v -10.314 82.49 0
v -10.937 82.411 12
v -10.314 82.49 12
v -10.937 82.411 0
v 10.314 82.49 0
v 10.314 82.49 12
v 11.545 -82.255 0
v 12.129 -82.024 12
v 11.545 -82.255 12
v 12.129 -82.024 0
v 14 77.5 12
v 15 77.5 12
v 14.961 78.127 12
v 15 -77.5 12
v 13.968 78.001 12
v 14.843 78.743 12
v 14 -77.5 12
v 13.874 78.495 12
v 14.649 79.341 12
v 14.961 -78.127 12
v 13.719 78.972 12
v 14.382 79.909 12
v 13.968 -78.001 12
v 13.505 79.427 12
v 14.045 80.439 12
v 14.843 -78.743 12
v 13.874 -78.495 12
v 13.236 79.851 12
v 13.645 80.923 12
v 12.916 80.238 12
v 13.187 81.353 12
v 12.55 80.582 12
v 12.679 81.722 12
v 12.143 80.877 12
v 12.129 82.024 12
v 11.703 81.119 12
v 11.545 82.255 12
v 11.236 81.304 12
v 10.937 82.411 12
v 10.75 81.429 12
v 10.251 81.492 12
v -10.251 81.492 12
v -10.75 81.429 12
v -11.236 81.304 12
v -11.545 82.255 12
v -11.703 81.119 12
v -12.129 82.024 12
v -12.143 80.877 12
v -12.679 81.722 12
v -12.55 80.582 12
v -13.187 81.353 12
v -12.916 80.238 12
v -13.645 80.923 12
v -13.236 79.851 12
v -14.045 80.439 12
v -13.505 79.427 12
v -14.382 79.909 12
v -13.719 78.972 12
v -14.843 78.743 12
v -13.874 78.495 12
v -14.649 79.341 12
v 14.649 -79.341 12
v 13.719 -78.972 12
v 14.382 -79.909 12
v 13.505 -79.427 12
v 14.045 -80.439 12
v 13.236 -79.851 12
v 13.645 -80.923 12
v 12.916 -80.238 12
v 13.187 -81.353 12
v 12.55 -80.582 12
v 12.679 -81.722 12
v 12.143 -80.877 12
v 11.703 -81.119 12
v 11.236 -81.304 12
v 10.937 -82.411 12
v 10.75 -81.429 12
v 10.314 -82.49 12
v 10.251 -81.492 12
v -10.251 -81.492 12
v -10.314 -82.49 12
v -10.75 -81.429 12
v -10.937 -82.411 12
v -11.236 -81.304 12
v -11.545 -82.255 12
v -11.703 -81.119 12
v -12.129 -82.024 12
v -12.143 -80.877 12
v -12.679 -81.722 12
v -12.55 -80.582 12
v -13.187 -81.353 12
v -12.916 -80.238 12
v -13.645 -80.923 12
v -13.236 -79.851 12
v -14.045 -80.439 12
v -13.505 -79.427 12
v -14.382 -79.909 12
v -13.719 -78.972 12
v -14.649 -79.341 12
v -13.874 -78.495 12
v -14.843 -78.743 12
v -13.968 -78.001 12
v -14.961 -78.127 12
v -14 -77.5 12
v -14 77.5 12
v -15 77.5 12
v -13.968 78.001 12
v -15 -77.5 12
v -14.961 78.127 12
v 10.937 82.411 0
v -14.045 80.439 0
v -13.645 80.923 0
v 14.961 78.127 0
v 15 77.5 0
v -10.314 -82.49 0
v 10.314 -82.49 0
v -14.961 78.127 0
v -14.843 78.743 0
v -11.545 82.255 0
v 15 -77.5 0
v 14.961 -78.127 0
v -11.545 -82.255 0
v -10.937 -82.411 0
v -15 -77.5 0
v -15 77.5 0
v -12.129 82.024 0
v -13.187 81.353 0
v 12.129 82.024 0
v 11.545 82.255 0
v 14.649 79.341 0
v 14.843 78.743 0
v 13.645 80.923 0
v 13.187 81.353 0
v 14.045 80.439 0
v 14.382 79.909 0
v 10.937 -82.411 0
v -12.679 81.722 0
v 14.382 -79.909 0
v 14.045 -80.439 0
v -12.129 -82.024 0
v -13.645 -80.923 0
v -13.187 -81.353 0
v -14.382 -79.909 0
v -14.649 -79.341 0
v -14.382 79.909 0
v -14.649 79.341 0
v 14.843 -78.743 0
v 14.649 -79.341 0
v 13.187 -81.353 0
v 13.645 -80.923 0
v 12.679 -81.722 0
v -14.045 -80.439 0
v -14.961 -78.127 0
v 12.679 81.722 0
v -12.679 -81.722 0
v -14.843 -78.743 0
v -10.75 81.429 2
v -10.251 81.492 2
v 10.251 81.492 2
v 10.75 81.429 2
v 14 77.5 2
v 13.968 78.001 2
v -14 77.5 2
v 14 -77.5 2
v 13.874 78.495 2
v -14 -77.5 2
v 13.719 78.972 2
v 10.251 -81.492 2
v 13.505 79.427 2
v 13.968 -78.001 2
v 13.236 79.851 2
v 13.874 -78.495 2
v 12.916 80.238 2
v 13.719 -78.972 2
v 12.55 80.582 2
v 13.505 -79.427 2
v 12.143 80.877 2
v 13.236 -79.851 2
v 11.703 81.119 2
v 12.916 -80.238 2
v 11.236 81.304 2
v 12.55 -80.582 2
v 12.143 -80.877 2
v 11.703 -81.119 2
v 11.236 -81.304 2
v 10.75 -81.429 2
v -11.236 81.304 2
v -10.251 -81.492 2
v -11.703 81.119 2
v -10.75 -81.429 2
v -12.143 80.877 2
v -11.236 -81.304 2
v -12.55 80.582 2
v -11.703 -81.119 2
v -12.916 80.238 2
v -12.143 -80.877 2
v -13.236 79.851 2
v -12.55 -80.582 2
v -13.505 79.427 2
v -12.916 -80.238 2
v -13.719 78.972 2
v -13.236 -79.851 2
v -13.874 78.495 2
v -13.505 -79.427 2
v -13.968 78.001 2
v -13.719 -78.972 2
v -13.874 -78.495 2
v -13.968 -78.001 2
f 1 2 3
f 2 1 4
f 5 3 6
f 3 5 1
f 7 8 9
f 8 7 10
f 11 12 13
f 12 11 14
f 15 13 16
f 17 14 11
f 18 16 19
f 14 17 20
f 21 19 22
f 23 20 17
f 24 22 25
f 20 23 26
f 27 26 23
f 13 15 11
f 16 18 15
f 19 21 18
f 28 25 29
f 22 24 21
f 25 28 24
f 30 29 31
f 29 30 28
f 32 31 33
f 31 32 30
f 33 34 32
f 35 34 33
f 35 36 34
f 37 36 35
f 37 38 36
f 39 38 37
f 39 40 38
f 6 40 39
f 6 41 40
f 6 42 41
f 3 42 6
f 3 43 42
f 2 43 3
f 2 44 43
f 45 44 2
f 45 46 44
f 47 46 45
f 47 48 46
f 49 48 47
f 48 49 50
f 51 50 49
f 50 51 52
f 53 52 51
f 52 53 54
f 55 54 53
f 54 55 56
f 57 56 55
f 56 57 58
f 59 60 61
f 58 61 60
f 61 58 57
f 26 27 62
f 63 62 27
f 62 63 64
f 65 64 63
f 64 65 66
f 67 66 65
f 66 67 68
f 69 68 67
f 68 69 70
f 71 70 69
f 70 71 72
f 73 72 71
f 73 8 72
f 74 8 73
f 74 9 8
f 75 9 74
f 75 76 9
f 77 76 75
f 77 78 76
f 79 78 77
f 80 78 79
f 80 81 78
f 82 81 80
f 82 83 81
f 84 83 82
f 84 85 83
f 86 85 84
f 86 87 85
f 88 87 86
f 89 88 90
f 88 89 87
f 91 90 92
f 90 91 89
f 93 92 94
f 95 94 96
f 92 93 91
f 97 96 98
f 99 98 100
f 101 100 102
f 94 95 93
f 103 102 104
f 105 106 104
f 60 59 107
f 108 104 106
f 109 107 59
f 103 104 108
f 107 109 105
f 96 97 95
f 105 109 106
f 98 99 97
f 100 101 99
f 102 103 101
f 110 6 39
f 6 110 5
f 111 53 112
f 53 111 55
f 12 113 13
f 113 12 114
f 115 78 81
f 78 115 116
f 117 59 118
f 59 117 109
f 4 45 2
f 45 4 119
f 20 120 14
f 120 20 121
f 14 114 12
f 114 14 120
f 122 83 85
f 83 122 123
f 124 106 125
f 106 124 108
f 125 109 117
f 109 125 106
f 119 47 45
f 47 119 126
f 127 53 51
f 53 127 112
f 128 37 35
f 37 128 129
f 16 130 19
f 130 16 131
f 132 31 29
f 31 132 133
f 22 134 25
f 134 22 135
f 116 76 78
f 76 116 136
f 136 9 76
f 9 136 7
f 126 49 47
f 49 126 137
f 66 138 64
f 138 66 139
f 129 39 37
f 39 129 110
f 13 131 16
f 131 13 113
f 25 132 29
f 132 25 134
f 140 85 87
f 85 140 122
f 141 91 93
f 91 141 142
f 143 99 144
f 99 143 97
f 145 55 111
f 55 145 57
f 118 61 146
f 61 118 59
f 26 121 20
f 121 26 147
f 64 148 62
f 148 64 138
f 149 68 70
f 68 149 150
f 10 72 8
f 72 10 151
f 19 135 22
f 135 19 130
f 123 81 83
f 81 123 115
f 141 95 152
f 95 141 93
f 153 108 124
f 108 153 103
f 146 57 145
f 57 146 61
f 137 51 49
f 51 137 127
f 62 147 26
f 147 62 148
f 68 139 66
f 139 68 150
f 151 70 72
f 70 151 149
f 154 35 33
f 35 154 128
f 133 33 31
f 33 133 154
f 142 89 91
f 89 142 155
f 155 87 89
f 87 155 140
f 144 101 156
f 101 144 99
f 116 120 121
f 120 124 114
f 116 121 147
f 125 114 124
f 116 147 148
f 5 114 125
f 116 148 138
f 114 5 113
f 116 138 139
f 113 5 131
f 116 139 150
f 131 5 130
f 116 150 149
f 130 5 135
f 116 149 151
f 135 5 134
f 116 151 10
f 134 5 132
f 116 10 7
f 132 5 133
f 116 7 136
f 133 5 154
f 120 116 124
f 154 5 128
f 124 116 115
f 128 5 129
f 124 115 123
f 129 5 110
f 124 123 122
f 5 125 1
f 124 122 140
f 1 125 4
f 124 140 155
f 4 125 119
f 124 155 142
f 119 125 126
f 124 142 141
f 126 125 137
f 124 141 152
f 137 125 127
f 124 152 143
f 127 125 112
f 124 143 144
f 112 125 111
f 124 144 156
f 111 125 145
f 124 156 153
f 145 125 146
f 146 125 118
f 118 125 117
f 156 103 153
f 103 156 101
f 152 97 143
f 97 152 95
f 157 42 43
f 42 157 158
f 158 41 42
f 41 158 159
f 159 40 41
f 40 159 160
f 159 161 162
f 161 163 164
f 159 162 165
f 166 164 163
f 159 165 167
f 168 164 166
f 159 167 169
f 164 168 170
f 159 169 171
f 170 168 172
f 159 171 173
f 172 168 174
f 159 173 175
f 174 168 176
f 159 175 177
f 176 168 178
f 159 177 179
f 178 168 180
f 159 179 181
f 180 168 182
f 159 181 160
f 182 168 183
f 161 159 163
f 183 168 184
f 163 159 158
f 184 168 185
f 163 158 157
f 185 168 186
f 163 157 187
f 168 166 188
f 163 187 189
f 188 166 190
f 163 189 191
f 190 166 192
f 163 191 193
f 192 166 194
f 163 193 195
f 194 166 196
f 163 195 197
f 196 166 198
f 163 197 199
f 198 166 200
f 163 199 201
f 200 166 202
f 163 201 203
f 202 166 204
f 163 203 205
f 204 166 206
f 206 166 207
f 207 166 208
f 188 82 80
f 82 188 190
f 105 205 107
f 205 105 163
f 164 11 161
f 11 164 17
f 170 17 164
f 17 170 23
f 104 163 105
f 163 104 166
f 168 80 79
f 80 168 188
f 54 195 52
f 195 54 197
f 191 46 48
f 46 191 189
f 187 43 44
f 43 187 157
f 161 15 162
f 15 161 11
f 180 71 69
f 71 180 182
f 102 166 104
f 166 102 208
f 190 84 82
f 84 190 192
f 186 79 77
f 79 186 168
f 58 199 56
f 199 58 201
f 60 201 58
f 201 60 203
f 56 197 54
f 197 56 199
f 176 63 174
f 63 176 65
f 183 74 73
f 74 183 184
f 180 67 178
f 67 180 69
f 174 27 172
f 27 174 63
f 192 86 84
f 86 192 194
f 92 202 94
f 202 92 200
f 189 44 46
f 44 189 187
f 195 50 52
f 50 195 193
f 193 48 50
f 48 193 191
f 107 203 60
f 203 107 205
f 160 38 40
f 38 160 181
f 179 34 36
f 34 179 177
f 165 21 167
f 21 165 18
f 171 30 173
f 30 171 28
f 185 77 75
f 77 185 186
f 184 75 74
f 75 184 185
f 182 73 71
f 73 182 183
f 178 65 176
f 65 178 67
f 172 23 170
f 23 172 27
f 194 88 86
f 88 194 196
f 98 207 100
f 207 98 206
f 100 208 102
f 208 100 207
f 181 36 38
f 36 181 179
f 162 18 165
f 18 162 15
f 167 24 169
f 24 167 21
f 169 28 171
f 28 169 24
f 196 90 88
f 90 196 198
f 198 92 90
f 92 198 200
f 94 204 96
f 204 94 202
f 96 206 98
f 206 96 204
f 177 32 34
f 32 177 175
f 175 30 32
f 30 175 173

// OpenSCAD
$fn = 50;


difference() {
	union() {
		hull() {
			translate(v = [-10.0000000000, 77.5000000000, 0]) {
				cylinder(h = 12, r = 5);
			}
			translate(v = [10.0000000000, 77.5000000000, 0]) {
				cylinder(h = 12, r = 5);
			}
			translate(v = [-10.0000000000, -77.5000000000, 0]) {
				cylinder(h = 12, r = 5);
			}
			translate(v = [10.0000000000, -77.5000000000, 0]) {
				cylinder(h = 12, r = 5);
			}
		}
	}
	union() {
		translate(v = [0, 0, 2]) {
			hull() {
				translate(v = [-10.0000000000, 77.5000000000, 0]) {
					cylinder(h = 10, r = 4);
				}
				translate(v = [10.0000000000, 77.5000000000, 0]) {
					cylinder(h = 10, r = 4);
				}
				translate(v = [-10.0000000000, -77.5000000000, 0]) {
					cylinder(h = 10, r = 4);
				}
				translate(v = [10.0000000000, -77.5000000000, 0]) {
					cylinder(h = 10, r = 4);
				}
			}
		}
	}
}
